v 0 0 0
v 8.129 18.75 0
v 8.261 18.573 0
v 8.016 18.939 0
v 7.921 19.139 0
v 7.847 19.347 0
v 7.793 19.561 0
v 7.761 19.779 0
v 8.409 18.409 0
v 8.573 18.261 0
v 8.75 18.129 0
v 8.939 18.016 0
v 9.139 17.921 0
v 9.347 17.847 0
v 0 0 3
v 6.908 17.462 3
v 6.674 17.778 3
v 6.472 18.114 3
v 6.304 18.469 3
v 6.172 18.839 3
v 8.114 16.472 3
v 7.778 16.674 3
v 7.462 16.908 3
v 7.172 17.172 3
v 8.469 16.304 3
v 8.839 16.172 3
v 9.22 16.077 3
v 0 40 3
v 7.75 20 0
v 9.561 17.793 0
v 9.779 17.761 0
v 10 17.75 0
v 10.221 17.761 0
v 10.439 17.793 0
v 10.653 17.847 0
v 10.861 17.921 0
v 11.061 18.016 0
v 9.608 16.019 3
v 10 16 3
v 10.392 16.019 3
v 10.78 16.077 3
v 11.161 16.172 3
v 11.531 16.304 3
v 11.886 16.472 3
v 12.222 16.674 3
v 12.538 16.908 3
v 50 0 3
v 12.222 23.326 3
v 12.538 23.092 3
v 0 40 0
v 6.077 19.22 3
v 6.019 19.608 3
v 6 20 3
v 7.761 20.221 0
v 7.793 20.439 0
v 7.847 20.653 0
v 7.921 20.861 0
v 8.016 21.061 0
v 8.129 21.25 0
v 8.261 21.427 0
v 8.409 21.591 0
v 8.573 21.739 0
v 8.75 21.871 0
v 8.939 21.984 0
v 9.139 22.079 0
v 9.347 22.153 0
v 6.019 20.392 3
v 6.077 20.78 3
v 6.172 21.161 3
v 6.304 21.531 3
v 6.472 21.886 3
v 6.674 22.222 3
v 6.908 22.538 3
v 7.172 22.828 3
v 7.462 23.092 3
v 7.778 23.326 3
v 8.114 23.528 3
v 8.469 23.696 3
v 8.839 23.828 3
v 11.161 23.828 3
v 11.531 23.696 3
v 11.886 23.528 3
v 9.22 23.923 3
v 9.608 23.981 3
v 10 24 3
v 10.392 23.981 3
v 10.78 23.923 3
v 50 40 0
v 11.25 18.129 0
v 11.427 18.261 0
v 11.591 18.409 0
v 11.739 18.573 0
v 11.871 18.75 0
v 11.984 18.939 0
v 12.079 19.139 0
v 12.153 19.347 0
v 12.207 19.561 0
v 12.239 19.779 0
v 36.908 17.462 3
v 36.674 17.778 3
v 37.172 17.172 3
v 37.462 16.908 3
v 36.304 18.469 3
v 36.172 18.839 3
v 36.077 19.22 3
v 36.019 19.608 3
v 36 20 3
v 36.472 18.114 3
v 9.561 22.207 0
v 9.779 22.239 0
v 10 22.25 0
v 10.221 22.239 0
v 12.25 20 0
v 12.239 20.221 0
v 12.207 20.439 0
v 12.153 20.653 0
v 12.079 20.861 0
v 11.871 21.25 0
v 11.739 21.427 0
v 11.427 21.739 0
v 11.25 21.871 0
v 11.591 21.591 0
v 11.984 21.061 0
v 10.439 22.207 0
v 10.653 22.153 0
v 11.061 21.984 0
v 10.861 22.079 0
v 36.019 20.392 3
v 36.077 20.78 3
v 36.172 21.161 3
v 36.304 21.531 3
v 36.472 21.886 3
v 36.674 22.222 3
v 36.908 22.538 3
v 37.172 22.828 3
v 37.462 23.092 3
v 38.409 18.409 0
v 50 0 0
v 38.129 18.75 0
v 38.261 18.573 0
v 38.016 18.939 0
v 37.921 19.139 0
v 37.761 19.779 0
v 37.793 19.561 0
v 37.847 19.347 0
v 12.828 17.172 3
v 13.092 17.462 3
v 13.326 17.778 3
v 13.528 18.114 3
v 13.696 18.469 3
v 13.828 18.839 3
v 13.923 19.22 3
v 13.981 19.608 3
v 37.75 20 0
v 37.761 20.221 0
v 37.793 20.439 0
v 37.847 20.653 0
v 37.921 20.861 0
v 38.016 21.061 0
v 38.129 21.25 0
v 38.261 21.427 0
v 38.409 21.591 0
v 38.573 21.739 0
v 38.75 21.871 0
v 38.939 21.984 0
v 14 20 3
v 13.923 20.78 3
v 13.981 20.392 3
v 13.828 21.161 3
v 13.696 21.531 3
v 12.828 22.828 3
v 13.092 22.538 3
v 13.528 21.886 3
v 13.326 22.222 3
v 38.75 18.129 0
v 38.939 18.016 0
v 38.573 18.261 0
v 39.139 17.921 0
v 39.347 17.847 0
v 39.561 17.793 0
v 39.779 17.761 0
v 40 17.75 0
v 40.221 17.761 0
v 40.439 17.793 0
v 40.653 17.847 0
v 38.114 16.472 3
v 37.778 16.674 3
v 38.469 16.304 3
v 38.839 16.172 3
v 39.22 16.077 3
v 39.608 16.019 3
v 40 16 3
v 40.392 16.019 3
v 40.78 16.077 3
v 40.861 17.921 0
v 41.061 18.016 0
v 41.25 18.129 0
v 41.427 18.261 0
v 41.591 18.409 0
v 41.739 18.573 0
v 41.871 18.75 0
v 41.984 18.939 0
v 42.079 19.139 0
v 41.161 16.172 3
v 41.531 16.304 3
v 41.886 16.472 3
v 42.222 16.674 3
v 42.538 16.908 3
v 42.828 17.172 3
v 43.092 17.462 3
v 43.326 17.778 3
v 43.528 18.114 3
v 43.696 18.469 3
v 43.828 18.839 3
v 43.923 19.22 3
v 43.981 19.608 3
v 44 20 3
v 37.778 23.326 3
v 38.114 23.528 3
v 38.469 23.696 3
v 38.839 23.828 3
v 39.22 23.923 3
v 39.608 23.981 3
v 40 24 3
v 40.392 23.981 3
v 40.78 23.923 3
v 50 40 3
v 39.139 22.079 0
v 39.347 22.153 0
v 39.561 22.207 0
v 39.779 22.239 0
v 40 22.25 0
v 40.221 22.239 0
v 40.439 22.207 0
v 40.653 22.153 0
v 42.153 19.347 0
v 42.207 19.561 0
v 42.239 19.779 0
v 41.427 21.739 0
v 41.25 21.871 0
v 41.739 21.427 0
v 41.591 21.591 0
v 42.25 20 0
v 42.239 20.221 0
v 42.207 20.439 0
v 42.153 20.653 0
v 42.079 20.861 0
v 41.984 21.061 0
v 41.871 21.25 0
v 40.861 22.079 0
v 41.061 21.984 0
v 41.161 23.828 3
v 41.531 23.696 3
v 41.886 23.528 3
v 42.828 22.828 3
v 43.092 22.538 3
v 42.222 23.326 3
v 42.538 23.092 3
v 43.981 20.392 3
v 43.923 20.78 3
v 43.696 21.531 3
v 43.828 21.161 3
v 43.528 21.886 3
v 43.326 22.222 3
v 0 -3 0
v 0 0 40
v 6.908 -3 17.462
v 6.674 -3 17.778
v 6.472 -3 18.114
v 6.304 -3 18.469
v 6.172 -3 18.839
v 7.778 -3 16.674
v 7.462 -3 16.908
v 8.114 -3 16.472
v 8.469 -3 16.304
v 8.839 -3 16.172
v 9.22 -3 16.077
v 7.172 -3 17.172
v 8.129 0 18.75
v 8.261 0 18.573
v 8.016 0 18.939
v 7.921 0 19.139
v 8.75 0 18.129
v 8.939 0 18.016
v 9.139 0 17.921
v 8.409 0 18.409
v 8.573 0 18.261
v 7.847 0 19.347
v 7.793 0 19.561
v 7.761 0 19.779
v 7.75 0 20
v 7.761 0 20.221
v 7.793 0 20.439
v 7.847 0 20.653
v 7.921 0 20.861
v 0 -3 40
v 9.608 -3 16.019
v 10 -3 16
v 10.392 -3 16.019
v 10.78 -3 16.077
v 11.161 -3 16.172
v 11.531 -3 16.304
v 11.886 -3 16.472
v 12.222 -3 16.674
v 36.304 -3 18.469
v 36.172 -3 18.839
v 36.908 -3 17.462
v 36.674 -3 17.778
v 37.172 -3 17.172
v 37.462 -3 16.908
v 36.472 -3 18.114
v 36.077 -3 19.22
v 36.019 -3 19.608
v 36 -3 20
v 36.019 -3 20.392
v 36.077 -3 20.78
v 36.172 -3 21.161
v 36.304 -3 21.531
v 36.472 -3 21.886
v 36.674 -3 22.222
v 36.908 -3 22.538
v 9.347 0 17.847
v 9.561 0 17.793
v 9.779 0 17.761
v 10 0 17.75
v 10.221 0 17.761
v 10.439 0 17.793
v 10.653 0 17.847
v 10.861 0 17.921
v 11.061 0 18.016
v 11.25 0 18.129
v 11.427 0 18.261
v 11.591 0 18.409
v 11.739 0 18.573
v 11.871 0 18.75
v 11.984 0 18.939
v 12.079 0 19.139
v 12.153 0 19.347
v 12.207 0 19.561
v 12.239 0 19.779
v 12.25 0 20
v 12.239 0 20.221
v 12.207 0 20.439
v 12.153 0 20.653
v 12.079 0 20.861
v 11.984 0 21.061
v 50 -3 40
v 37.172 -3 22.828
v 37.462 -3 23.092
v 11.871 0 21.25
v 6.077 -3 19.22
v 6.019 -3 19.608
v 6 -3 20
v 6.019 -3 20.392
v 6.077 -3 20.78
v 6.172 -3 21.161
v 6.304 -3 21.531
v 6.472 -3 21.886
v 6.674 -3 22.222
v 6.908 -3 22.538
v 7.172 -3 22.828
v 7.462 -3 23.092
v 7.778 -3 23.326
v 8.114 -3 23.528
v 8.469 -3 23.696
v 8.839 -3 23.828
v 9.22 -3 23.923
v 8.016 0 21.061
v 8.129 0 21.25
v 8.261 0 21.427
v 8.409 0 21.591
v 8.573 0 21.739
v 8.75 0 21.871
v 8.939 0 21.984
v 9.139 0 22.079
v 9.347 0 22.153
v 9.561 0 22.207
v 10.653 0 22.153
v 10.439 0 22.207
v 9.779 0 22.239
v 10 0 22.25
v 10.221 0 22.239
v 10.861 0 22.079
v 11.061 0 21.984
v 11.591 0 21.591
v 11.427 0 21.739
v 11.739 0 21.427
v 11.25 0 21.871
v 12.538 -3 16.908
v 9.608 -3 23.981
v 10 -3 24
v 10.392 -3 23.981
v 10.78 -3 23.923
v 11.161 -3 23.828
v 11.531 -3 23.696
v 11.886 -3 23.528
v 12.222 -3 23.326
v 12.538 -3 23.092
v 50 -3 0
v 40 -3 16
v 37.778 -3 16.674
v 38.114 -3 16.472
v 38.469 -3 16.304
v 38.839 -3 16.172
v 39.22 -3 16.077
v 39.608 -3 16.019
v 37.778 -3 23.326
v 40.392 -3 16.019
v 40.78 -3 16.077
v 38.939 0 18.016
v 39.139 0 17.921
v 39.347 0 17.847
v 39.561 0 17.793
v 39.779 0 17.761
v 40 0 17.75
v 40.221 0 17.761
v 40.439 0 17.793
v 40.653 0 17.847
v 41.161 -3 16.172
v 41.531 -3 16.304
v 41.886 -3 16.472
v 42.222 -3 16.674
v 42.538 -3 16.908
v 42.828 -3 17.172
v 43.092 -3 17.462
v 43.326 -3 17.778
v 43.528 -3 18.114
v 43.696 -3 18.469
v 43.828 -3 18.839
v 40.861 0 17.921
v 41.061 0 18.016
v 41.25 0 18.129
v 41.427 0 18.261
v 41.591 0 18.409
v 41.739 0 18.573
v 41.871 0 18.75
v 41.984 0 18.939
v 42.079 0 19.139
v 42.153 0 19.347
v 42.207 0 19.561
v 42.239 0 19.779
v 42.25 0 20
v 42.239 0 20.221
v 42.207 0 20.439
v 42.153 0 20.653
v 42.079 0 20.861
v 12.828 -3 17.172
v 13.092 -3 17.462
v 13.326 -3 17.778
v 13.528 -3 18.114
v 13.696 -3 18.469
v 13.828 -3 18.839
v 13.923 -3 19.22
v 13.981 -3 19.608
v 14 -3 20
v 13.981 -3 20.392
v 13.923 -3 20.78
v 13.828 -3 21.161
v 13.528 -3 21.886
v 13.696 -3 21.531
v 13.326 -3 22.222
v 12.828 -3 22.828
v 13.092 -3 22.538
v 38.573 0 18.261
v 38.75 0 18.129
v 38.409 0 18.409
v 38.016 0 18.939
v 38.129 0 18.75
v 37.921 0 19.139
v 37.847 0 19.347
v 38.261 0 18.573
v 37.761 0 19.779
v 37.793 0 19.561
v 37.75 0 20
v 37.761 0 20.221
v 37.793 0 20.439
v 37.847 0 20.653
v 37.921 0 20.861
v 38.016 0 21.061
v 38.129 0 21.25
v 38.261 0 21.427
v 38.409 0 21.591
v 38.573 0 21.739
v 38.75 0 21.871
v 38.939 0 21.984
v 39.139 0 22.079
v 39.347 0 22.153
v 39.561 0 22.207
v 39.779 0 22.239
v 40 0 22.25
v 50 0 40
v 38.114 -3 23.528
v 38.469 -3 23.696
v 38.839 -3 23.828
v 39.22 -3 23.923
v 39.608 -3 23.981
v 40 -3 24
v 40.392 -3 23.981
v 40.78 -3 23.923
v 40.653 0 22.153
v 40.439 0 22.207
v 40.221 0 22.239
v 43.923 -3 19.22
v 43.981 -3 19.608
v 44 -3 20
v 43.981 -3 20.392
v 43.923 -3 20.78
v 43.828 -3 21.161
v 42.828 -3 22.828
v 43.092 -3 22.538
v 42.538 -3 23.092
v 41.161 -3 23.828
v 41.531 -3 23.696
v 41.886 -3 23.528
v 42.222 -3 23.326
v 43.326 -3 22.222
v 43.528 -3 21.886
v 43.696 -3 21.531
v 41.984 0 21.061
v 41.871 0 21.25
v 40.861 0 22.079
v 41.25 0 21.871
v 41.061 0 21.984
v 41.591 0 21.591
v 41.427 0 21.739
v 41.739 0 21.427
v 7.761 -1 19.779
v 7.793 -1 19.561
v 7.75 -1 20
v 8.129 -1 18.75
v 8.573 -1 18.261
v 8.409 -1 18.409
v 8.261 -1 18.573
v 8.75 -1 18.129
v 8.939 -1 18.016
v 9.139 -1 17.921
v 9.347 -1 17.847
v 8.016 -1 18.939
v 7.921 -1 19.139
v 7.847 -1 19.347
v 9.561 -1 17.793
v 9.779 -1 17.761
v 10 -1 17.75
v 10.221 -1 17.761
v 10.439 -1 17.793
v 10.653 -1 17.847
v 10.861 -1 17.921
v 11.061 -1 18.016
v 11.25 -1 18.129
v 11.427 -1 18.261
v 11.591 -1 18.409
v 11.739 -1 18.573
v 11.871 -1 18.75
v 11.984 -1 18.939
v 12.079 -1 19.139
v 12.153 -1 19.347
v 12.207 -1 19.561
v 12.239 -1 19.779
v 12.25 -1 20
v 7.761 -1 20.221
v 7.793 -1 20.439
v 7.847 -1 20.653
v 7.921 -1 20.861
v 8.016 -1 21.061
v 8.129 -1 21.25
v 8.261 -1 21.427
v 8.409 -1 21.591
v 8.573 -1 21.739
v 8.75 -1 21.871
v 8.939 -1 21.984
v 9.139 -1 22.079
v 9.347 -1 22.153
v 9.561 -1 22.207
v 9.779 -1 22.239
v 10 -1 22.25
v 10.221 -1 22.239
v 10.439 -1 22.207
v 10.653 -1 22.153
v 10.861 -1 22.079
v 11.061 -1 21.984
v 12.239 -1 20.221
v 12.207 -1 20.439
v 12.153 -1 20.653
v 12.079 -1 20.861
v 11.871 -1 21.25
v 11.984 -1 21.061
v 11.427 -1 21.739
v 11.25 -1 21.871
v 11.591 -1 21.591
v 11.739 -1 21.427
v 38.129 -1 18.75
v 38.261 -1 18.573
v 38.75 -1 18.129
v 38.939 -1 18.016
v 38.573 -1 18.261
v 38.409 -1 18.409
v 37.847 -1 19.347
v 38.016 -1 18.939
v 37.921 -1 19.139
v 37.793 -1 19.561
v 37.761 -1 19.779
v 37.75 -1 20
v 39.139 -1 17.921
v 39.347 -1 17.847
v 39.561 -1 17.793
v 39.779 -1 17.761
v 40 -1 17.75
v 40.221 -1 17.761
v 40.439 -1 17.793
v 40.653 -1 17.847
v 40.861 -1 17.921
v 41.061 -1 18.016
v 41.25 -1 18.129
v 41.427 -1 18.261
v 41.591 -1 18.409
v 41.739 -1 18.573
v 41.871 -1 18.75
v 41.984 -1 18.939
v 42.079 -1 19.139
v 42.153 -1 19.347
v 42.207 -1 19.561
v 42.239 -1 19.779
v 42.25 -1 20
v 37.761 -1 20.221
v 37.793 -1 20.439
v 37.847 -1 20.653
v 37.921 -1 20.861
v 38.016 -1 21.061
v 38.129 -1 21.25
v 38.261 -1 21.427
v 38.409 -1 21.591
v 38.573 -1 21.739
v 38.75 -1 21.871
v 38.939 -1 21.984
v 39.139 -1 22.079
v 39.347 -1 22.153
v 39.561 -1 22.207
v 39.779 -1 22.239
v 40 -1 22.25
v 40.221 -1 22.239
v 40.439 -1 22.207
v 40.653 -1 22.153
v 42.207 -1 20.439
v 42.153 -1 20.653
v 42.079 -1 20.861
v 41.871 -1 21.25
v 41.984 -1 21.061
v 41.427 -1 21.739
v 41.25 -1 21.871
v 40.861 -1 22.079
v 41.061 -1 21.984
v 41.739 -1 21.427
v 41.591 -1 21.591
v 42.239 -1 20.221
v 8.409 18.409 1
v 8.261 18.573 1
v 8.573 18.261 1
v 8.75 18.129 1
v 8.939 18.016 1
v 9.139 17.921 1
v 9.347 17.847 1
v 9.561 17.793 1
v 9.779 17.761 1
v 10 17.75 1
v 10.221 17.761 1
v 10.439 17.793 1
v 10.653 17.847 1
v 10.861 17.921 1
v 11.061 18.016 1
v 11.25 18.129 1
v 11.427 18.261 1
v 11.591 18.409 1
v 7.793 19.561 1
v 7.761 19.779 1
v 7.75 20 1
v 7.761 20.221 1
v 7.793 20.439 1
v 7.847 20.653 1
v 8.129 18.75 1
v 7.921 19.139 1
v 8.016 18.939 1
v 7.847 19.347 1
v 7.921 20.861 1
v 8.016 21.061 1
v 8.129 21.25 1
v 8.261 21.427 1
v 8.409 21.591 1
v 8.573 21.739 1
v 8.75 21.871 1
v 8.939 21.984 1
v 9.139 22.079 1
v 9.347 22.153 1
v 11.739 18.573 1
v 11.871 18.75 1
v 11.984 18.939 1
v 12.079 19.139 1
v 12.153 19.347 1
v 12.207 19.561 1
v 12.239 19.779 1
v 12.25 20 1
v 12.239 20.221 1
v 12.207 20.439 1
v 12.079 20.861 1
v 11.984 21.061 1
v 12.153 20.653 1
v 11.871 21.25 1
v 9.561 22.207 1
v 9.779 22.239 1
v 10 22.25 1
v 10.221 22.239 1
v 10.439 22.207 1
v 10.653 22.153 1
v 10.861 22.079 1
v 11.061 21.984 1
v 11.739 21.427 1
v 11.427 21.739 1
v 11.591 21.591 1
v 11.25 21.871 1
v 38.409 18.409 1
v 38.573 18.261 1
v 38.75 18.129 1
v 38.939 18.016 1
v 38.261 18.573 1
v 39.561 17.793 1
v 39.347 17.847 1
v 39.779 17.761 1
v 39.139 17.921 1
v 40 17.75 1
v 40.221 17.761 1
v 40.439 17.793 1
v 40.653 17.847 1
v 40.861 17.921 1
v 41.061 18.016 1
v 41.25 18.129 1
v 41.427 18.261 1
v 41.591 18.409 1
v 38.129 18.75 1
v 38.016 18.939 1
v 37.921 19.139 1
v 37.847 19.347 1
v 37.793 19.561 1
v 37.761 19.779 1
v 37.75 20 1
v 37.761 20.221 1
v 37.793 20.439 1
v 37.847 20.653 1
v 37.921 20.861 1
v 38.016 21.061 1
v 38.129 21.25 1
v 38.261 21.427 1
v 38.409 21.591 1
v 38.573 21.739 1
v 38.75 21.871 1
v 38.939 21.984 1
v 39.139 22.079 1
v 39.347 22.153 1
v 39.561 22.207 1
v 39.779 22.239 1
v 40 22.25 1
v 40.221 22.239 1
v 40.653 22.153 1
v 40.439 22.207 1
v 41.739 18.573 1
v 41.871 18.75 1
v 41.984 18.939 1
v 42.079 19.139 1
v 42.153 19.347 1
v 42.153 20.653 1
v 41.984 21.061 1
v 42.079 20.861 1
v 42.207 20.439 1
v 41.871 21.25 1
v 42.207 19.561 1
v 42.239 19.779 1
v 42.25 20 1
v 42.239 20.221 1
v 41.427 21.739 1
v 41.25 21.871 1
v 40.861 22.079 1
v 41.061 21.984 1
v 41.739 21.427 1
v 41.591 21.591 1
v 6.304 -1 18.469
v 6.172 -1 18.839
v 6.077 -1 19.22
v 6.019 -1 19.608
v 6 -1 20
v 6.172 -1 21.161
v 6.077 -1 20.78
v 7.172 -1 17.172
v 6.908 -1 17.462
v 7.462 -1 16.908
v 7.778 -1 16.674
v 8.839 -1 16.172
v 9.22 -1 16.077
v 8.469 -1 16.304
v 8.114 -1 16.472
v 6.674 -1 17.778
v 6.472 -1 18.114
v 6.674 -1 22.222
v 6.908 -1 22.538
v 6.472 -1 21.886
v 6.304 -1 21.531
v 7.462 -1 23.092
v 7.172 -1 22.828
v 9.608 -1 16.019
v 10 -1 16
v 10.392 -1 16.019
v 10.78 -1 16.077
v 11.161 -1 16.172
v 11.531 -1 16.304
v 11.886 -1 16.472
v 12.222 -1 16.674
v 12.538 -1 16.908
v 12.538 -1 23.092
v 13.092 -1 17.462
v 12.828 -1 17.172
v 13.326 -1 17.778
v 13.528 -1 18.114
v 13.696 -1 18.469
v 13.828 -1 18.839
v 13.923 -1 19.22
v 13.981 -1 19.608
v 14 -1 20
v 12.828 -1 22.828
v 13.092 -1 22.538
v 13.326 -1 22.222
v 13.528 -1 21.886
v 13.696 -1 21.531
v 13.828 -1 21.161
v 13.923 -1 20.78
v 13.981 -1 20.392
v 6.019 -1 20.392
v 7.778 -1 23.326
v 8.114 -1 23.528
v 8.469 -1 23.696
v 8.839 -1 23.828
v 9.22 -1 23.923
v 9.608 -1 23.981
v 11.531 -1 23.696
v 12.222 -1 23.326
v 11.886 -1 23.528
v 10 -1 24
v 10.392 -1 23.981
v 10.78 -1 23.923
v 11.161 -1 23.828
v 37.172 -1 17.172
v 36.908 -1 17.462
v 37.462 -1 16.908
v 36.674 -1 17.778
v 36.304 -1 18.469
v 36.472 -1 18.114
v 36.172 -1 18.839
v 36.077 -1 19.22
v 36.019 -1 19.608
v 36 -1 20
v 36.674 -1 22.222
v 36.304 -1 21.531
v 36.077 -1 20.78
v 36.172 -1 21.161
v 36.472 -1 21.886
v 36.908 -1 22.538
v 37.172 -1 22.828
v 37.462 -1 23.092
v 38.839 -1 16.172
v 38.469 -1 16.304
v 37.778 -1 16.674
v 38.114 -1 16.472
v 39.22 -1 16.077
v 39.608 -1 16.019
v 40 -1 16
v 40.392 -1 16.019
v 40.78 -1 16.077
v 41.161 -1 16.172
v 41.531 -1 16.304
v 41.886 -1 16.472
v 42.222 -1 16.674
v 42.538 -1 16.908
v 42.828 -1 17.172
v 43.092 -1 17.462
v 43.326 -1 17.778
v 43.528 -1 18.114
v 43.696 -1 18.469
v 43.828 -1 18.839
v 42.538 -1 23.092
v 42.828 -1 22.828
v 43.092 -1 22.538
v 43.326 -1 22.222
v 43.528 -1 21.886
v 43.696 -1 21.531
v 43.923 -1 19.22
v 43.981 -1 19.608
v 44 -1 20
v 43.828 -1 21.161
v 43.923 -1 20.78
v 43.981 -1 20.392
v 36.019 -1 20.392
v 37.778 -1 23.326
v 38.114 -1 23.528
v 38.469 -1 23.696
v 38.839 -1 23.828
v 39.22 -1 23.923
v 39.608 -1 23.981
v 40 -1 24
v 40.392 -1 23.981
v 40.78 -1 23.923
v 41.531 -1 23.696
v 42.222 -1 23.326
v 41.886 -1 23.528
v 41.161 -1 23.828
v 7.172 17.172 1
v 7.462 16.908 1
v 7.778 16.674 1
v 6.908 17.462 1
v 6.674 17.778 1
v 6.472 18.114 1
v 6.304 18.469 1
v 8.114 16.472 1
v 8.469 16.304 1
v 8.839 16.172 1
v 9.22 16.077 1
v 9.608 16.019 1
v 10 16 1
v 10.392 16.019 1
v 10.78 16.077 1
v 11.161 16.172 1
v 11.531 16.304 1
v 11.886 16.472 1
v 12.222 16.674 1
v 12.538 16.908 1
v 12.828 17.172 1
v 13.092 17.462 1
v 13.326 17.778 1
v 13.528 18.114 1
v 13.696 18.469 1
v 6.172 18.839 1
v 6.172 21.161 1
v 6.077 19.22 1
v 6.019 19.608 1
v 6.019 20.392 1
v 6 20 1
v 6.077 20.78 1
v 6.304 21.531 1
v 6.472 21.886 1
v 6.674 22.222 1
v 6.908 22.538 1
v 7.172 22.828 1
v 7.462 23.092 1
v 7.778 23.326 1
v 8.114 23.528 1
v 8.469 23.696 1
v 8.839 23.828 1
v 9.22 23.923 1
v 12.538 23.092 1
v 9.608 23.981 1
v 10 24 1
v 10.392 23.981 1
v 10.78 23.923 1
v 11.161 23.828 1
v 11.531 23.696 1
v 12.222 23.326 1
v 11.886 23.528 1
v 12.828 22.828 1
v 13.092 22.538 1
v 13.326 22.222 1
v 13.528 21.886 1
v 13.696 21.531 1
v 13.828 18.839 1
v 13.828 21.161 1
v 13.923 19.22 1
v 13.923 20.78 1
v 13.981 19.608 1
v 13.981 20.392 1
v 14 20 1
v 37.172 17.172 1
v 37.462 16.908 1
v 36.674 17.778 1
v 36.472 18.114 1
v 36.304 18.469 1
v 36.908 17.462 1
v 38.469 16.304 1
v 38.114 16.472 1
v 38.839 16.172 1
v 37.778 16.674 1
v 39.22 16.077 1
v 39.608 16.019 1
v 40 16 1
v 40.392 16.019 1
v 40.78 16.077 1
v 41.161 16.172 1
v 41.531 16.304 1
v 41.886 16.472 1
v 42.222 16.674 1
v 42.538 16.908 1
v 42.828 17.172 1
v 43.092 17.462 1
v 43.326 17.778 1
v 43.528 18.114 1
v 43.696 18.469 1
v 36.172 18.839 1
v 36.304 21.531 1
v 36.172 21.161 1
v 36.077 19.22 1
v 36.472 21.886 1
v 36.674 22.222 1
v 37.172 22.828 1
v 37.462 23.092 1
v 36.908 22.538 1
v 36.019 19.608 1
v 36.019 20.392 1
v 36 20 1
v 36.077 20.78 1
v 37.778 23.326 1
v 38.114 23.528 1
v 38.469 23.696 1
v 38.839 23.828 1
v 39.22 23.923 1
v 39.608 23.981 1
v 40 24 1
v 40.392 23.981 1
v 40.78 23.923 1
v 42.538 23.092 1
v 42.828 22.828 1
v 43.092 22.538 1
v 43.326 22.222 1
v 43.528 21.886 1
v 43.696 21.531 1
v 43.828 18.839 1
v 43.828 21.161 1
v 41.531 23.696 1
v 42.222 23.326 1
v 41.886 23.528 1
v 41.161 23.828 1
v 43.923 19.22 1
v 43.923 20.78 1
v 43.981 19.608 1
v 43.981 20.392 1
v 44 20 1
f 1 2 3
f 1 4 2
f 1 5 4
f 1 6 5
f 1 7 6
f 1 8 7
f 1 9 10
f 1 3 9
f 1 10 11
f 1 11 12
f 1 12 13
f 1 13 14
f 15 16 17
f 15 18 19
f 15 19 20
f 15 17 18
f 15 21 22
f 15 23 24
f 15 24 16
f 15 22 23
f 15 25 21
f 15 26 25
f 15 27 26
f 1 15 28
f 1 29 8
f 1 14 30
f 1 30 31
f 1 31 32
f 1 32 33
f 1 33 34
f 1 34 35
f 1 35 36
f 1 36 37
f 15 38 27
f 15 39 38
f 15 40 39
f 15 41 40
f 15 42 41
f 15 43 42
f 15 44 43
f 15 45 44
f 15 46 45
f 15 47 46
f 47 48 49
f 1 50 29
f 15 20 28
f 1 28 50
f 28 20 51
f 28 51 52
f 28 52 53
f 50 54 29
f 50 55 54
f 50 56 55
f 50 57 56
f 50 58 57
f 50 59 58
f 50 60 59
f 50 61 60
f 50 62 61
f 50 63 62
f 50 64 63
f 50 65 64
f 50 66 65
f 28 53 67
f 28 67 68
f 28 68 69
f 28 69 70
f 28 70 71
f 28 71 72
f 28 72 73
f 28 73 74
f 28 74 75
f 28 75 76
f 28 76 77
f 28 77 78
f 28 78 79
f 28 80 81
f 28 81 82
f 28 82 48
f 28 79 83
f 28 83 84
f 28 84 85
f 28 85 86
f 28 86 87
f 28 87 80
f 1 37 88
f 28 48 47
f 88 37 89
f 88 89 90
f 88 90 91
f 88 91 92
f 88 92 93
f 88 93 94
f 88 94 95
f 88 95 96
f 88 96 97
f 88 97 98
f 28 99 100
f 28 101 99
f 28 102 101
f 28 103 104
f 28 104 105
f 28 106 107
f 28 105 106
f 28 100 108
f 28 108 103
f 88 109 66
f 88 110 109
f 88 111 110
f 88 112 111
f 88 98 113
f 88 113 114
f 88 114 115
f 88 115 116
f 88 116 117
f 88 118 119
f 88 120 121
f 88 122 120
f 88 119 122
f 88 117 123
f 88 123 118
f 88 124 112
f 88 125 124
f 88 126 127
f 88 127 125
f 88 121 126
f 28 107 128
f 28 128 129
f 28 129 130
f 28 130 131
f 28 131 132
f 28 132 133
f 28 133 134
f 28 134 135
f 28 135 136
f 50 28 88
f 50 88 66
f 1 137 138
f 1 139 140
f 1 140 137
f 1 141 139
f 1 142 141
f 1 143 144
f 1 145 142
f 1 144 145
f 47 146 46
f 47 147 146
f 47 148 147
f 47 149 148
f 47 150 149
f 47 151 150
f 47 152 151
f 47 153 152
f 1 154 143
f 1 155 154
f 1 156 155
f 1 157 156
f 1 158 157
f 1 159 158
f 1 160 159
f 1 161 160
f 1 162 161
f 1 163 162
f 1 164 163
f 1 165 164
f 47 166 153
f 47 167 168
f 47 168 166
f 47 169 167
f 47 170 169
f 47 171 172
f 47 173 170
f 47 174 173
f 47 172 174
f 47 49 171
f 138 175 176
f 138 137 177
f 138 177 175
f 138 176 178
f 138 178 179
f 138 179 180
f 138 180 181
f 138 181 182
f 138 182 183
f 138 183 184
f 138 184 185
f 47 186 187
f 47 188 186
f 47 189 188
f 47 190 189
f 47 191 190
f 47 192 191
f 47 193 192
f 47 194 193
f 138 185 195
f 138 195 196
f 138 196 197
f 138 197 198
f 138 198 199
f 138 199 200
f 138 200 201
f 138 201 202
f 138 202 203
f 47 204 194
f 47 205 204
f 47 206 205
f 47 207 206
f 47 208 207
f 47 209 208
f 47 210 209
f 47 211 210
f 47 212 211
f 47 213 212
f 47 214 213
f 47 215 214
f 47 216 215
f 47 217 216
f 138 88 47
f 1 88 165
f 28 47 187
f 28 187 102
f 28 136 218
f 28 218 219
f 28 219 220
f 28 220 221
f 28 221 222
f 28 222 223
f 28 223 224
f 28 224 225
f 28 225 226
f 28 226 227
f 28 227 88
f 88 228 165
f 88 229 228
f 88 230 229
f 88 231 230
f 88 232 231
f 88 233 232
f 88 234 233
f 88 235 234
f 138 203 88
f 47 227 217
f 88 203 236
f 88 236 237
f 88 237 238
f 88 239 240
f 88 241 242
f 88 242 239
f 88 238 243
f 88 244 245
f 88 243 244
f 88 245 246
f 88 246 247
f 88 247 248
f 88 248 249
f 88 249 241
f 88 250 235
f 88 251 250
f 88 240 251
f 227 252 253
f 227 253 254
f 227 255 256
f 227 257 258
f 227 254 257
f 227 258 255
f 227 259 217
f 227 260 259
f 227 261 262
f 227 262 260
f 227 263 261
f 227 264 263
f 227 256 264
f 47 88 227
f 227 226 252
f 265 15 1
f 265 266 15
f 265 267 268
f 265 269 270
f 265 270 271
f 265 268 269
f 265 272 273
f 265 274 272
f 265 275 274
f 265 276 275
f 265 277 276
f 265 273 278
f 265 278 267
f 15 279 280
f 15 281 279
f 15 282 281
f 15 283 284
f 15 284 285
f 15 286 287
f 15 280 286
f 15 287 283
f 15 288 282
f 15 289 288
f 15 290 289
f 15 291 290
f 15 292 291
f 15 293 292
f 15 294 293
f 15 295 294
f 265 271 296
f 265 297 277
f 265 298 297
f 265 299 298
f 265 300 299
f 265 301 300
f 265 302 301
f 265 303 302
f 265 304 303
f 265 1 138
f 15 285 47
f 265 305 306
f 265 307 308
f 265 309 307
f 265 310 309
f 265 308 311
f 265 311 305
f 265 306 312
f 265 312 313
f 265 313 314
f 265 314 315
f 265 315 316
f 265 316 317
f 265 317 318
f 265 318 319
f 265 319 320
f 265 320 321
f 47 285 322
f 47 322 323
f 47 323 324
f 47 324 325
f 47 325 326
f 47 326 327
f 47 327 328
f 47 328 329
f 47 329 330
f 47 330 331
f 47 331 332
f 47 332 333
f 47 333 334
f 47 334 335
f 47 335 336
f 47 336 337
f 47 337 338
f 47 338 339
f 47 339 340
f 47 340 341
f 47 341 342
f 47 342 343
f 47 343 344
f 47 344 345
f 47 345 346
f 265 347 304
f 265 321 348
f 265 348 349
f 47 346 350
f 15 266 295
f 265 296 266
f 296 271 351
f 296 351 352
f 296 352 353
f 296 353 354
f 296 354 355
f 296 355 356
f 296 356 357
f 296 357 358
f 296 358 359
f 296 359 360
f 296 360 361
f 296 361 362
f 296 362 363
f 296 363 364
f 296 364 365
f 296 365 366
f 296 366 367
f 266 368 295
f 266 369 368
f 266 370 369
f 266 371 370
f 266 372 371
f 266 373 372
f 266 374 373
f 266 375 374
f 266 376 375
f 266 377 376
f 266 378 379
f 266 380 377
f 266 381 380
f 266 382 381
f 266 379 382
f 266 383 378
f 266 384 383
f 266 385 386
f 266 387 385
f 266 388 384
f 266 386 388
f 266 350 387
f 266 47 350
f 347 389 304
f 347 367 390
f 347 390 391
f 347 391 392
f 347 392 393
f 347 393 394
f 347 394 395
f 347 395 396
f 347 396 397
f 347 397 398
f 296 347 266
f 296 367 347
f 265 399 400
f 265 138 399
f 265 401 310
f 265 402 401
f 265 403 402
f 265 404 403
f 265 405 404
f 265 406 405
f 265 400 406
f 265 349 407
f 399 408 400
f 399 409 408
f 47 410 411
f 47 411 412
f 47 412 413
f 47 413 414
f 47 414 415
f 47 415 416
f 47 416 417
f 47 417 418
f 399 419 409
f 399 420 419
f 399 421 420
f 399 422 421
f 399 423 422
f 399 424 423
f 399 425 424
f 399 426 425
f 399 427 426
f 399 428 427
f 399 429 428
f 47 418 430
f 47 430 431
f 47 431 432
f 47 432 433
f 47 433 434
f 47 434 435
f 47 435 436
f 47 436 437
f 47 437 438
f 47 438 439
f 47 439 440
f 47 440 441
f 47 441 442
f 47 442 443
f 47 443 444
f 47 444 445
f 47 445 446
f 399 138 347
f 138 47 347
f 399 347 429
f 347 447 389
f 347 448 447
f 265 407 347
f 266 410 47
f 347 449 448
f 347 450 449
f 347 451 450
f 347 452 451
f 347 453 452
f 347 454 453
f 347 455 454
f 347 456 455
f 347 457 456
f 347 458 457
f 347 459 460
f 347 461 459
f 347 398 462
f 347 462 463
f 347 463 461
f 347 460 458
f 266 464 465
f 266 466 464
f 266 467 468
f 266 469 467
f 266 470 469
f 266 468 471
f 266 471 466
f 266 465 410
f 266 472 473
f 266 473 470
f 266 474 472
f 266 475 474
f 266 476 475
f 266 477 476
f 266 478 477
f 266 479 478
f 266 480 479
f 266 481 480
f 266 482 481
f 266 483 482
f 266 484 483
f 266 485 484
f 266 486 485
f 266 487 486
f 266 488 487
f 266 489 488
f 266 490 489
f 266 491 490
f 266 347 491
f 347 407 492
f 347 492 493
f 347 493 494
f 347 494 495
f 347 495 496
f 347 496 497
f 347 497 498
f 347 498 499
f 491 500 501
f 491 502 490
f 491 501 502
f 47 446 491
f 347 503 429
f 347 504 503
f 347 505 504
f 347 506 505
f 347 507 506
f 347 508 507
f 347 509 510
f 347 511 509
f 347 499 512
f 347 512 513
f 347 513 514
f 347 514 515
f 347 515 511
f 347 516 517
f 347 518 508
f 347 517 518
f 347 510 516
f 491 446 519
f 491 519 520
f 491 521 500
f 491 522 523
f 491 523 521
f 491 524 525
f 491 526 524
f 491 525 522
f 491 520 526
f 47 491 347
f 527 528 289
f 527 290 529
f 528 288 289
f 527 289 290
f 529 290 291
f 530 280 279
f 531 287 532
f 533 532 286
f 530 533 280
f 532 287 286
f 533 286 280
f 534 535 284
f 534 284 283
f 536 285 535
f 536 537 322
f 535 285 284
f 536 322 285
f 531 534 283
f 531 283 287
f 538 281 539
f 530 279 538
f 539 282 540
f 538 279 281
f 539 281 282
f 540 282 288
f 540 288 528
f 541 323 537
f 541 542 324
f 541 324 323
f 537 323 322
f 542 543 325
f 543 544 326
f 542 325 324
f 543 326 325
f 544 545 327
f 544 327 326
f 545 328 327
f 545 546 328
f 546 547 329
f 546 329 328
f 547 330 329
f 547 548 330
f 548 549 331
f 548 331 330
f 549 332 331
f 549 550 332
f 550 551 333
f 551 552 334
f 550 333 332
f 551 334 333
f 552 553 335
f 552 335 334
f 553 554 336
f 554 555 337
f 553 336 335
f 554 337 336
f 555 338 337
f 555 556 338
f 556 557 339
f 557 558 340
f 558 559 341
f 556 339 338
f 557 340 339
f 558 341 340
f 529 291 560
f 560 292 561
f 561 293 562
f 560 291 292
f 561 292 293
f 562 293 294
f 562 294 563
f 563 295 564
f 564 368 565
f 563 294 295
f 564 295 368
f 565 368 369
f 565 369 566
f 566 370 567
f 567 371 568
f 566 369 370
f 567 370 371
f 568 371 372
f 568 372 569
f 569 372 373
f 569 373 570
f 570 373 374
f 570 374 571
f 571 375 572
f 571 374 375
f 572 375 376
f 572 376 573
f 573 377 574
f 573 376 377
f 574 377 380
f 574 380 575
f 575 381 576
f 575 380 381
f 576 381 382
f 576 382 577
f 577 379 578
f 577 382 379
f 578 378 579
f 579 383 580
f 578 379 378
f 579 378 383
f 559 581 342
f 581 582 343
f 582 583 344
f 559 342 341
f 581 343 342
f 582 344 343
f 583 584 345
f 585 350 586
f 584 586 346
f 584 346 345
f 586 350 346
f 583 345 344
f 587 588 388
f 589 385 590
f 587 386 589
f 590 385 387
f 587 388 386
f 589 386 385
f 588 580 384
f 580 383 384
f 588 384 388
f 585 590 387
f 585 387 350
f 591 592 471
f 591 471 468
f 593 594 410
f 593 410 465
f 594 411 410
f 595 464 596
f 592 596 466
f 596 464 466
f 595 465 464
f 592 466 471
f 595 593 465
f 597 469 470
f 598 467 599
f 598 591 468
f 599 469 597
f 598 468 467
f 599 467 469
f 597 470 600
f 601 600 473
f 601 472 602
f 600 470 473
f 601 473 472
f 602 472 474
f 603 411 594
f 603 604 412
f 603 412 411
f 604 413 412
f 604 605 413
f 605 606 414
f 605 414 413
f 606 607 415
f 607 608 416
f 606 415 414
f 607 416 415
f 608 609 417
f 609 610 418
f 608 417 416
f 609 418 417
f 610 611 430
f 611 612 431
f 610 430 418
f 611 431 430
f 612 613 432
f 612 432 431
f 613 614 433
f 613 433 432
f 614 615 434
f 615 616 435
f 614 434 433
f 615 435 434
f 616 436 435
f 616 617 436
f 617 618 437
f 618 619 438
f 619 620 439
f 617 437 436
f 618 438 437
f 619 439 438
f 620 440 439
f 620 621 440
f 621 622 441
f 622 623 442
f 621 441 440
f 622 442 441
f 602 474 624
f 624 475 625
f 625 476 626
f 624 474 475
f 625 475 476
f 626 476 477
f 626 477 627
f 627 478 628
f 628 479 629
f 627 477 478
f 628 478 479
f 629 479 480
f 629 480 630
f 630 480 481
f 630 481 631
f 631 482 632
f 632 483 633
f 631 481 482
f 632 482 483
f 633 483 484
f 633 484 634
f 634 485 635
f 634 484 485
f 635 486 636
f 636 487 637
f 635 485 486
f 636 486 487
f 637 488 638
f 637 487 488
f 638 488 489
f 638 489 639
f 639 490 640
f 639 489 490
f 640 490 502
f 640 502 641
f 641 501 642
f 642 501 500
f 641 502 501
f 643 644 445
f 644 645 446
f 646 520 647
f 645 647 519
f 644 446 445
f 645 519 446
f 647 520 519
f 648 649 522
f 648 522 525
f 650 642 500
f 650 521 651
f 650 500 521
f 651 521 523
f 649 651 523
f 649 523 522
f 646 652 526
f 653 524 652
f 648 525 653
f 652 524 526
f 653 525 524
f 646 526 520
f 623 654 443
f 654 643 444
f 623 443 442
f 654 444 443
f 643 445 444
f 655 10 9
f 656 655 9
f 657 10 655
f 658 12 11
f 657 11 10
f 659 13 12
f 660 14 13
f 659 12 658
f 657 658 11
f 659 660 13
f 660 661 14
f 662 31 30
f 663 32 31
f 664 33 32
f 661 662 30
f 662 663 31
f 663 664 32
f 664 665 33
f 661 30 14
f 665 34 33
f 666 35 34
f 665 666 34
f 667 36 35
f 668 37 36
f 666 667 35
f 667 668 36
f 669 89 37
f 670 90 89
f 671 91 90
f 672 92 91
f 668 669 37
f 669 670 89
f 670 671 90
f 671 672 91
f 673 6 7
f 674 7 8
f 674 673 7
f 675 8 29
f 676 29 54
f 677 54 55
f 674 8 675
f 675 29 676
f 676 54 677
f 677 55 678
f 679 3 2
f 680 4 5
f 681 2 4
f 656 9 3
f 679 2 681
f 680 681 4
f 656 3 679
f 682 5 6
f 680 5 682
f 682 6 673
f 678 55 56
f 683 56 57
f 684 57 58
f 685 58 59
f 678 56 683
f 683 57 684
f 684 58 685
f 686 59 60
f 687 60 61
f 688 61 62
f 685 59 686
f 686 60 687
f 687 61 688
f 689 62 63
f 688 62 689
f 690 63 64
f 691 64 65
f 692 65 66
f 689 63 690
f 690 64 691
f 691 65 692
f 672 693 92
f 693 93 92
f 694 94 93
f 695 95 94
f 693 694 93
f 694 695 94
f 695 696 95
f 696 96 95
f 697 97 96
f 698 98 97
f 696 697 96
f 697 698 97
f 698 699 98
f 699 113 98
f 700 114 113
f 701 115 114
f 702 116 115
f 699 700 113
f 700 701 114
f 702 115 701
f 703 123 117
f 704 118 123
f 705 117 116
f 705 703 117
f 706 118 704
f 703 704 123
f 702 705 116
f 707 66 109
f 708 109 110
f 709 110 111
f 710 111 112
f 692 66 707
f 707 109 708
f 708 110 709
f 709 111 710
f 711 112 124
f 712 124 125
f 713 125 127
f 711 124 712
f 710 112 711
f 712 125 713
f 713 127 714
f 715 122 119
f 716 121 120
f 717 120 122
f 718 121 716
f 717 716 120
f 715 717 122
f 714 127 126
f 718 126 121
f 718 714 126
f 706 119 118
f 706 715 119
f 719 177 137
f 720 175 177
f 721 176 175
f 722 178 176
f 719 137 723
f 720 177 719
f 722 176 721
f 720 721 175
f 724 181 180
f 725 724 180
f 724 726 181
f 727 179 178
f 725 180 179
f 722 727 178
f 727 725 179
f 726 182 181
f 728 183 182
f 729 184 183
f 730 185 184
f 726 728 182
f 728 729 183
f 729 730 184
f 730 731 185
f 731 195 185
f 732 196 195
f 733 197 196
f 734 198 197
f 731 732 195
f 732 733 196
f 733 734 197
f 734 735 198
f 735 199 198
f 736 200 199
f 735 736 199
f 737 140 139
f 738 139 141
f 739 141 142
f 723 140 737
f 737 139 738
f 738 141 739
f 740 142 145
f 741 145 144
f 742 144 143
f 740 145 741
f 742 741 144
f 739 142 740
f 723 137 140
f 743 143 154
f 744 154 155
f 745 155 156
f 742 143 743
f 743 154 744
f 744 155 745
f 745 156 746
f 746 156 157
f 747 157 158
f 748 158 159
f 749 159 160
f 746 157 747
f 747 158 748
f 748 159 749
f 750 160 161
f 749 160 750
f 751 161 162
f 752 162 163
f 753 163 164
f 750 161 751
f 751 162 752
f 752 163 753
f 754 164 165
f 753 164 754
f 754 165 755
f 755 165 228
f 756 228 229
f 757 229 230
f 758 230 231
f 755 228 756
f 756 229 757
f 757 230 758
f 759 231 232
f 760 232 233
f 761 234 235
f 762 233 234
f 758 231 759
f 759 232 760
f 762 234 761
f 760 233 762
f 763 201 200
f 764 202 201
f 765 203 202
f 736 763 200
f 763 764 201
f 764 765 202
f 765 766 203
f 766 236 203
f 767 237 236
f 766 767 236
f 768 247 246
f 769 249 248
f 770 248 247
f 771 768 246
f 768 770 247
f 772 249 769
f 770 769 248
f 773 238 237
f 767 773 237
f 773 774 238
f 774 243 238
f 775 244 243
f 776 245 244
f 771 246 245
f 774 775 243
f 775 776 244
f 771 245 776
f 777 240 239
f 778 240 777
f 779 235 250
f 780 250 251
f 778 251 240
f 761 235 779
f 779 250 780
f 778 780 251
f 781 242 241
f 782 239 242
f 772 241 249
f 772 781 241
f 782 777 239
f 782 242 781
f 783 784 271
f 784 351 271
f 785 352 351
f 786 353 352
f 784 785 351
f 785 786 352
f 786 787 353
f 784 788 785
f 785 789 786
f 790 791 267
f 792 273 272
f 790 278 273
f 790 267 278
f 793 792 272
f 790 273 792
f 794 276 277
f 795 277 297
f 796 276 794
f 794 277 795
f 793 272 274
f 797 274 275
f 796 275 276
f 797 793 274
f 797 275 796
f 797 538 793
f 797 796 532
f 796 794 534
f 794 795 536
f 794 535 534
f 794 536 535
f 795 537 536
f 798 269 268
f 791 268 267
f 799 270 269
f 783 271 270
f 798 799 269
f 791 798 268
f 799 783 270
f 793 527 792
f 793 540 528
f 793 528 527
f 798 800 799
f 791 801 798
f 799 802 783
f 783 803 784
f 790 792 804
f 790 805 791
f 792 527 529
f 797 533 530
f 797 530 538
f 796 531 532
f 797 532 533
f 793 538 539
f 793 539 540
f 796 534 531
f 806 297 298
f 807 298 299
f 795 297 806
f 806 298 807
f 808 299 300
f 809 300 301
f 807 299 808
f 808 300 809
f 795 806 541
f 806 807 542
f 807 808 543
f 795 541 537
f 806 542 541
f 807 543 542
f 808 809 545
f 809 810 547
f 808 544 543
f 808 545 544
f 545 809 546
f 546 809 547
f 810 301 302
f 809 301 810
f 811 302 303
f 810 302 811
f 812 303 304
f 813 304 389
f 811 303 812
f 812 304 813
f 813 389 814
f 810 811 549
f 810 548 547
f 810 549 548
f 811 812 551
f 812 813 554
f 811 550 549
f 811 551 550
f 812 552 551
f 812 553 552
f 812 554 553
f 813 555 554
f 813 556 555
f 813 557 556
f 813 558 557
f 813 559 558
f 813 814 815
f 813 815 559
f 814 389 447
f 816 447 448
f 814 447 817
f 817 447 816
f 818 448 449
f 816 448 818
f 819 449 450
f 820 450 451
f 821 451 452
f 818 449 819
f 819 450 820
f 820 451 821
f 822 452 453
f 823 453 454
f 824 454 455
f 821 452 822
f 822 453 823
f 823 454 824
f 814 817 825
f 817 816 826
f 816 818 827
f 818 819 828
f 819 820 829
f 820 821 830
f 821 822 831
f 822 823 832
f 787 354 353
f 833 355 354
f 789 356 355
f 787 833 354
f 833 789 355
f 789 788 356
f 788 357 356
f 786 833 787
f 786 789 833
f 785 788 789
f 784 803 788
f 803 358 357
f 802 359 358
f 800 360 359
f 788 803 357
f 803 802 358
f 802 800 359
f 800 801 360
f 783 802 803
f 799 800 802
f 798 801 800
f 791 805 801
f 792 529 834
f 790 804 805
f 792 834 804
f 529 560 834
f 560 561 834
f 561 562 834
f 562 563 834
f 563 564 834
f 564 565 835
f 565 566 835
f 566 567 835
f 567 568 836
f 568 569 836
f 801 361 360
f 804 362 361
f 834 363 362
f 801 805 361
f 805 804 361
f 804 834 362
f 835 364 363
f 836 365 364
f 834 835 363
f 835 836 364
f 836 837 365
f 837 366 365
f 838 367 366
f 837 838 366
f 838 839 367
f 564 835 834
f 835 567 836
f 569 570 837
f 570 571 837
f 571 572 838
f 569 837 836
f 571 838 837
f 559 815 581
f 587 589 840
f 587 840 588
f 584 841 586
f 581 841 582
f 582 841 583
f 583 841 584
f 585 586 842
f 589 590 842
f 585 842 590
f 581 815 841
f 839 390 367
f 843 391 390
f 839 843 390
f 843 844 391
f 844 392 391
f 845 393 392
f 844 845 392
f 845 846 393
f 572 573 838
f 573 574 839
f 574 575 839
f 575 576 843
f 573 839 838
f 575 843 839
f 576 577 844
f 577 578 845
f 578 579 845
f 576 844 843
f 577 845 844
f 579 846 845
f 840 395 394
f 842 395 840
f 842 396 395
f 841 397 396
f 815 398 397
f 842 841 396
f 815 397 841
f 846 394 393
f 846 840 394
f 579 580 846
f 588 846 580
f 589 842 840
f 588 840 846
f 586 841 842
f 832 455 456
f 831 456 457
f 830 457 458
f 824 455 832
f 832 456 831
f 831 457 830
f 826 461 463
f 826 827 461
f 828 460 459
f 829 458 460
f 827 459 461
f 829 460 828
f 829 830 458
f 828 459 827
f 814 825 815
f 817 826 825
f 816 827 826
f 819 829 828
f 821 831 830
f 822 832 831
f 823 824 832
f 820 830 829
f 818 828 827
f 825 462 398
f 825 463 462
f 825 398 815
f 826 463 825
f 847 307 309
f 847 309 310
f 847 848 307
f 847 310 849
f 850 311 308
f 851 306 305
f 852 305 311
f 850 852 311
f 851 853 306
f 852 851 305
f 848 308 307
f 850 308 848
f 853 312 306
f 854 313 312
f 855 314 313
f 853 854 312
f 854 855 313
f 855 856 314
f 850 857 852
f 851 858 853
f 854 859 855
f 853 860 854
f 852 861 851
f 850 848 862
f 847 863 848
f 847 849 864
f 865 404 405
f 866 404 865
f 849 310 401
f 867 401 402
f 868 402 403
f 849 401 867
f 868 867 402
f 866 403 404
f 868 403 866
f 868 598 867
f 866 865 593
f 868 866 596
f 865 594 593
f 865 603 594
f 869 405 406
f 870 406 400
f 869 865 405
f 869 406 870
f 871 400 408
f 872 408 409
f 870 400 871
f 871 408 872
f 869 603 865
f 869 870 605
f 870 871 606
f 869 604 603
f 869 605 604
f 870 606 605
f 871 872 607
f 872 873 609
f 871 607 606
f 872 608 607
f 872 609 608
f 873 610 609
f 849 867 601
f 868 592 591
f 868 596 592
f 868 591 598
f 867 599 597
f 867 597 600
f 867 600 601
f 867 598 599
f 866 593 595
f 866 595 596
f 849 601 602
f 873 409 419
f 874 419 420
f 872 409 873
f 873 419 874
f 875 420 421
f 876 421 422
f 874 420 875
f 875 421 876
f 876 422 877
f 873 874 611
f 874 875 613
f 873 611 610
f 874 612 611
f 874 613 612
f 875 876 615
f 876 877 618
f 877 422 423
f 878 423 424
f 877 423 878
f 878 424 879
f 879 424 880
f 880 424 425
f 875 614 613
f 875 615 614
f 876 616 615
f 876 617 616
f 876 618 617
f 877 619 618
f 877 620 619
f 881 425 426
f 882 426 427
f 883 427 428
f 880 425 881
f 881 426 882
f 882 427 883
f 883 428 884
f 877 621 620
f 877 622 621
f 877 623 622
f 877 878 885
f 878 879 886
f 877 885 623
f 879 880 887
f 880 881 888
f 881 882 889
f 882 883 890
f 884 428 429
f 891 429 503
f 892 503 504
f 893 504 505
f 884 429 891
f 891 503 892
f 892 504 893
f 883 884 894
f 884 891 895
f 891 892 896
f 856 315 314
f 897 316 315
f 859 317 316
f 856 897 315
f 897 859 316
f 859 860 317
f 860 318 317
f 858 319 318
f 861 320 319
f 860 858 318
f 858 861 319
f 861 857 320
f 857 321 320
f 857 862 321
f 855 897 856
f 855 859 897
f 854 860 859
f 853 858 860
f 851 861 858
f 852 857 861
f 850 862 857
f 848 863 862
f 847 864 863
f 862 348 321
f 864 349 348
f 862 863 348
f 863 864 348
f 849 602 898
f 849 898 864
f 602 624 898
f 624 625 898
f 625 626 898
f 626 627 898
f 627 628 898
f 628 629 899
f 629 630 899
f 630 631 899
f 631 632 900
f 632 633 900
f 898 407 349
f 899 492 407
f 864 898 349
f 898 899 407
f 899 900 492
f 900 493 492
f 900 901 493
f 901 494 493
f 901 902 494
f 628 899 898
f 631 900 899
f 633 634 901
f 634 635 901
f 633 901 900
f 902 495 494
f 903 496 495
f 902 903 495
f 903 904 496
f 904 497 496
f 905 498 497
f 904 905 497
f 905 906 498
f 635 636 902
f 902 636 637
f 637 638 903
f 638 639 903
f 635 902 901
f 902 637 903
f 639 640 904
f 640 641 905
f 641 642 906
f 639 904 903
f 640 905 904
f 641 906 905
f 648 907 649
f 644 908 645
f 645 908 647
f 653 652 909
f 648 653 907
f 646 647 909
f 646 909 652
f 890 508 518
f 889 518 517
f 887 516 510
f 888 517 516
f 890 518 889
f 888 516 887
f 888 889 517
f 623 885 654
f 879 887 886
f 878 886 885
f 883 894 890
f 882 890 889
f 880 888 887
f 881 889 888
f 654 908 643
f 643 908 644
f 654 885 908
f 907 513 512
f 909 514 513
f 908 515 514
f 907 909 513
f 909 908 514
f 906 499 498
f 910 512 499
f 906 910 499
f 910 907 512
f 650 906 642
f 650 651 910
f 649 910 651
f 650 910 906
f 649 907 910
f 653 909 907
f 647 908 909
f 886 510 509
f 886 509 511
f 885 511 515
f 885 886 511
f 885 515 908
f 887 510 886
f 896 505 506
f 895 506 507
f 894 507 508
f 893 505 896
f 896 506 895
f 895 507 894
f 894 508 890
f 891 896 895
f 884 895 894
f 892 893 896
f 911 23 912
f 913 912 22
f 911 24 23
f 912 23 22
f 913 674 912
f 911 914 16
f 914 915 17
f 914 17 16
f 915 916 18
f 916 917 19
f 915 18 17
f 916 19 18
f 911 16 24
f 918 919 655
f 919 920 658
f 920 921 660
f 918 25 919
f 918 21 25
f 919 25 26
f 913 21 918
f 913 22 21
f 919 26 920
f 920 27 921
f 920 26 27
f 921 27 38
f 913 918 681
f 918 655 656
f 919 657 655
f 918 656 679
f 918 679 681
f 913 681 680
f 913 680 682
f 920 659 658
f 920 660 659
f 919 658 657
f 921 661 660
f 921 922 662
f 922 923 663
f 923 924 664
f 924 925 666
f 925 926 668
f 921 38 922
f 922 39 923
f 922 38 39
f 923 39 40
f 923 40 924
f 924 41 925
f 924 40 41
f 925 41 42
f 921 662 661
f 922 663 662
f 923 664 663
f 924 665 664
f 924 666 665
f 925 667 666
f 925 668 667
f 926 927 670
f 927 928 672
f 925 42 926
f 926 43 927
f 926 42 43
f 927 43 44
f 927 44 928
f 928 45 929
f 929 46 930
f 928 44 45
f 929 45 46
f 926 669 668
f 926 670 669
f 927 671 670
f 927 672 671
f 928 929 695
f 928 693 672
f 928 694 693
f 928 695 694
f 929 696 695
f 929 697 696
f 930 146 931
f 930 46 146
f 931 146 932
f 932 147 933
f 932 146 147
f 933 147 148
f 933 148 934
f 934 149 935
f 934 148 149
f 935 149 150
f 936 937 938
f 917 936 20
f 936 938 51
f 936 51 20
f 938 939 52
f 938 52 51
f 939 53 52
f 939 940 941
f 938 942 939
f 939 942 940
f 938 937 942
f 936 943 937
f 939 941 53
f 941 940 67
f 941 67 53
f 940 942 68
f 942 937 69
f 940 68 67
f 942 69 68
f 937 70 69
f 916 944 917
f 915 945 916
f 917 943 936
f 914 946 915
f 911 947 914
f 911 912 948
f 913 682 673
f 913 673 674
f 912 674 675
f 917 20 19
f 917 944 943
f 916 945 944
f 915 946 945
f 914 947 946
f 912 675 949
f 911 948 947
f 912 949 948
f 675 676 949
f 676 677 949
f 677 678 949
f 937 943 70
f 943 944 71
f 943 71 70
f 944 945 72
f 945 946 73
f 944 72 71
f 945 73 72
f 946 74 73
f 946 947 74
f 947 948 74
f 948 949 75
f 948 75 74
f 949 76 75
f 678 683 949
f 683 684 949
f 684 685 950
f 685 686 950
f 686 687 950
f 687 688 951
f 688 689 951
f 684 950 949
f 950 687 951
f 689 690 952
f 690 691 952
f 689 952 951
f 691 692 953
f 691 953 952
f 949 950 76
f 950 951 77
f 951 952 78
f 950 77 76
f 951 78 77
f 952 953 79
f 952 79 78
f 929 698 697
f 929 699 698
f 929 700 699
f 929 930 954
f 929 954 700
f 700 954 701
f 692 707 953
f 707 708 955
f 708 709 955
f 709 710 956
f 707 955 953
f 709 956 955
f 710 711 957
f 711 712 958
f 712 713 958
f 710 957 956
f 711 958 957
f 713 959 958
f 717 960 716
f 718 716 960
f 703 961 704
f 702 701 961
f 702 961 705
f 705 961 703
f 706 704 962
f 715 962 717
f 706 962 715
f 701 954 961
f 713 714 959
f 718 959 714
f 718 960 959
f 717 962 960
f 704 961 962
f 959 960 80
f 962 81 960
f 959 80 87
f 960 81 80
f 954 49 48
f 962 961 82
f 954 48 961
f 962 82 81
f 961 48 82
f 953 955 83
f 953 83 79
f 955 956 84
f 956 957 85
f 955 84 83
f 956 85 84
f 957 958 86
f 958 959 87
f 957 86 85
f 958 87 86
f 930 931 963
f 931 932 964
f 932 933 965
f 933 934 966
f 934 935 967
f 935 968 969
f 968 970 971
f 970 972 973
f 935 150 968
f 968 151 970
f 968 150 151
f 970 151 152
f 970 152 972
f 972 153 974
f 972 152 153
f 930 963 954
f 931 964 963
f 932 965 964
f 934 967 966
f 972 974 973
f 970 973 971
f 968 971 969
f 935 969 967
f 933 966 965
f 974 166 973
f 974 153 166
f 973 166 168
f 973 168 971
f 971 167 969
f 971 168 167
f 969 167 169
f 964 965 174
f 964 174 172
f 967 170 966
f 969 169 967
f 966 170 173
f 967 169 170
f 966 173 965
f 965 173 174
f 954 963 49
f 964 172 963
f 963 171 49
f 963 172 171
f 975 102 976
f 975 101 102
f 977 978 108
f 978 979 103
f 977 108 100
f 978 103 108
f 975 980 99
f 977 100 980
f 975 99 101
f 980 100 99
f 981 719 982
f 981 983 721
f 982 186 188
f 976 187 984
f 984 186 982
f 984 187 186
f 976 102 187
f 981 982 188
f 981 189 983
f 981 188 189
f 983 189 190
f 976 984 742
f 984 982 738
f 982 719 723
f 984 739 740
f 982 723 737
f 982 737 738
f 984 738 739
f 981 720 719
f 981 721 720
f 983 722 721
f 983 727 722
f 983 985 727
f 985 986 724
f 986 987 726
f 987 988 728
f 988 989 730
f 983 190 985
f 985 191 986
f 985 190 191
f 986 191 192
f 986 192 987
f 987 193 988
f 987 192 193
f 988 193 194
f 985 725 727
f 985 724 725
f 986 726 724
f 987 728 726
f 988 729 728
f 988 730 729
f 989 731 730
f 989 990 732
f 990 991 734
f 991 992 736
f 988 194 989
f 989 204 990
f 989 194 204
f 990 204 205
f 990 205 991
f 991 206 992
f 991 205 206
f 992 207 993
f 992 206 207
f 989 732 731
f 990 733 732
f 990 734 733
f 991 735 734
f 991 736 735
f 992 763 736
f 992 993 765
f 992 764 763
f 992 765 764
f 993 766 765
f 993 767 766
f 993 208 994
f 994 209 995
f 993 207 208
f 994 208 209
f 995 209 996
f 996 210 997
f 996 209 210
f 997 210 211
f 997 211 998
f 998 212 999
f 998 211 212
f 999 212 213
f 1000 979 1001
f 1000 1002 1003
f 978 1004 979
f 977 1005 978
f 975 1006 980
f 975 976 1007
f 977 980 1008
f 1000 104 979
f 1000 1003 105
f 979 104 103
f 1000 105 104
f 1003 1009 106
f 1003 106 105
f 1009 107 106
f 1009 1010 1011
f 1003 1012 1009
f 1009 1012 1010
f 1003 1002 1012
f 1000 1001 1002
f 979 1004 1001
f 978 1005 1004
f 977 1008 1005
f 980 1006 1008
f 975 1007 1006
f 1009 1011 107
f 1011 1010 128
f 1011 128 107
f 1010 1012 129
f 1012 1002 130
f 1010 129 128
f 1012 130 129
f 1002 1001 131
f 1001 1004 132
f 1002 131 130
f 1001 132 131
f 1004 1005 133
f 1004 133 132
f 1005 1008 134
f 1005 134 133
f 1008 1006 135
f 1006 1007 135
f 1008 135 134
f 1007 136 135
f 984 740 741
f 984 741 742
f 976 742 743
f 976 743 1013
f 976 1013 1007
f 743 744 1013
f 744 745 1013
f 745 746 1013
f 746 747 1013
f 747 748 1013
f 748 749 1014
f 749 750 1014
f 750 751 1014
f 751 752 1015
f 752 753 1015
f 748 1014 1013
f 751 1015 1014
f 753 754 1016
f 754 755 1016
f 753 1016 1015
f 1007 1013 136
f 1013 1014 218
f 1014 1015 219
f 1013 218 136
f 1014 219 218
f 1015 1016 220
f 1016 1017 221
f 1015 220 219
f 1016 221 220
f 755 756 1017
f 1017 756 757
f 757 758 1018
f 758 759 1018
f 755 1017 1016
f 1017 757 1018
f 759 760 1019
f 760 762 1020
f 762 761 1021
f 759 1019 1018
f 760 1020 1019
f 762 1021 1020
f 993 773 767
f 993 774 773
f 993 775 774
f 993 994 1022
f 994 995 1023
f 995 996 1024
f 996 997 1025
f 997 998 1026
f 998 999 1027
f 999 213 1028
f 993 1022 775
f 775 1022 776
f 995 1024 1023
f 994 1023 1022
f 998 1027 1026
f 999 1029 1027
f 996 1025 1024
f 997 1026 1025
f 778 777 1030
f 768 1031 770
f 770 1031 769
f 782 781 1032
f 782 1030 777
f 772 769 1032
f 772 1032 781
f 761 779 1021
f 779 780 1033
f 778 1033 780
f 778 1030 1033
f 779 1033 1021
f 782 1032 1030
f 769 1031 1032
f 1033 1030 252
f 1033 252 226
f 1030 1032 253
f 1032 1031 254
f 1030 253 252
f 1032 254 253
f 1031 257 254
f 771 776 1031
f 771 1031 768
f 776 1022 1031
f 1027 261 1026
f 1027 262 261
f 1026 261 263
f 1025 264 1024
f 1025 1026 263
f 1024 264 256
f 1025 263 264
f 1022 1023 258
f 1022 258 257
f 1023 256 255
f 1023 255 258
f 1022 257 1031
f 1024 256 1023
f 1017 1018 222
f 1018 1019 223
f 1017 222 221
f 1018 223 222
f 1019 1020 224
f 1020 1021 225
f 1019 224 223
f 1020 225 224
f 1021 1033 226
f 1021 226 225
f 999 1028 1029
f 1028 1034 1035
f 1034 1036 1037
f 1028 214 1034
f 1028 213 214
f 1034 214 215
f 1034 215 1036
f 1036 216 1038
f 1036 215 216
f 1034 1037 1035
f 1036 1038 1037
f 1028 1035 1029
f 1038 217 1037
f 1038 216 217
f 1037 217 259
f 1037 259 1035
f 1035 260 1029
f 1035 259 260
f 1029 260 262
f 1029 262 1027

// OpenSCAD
$fn = 64;

// Parameters
width = 50;
depth = 40;
height = 40;
thickness = 3;

through_d = 4.5;
csink_d = 8;
csink_depth = 2;

edge_offset = 10;
x1 = edge_offset;
x2 = width - edge_offset;

// Countersunk hole module (simple counterbore-style recess as requested)
module countersunk_hole(len) {
    union() {
        cylinder(h = len, d = through_d);
        cylinder(h = csink_depth, d = csink_d);
    }
}

difference() {
    union() {
        // Horizontal flange: extends in +Y, thickness in +Z
        cube([width, depth, thickness]);

        // Vertical flange: extends in +Z, thickness in -Y (outer face at y = -thickness)
        translate([0, -thickness, 0])
            cube([width, thickness, height]);
    }

    // Horizontal flange holes (outer side = top, +Z)
    for (x = [x1, x2]) {
        translate([x, depth/2, thickness])
            rotate([180, 0, 0])
                countersunk_hole(thickness);
    }

    // Vertical flange holes (outer side = back, -Y)
    for (x = [x1, x2]) {
        translate([x, -thickness, height/2])
            rotate([-90, 0, 0])
                countersunk_hole(thickness);
    }
}
